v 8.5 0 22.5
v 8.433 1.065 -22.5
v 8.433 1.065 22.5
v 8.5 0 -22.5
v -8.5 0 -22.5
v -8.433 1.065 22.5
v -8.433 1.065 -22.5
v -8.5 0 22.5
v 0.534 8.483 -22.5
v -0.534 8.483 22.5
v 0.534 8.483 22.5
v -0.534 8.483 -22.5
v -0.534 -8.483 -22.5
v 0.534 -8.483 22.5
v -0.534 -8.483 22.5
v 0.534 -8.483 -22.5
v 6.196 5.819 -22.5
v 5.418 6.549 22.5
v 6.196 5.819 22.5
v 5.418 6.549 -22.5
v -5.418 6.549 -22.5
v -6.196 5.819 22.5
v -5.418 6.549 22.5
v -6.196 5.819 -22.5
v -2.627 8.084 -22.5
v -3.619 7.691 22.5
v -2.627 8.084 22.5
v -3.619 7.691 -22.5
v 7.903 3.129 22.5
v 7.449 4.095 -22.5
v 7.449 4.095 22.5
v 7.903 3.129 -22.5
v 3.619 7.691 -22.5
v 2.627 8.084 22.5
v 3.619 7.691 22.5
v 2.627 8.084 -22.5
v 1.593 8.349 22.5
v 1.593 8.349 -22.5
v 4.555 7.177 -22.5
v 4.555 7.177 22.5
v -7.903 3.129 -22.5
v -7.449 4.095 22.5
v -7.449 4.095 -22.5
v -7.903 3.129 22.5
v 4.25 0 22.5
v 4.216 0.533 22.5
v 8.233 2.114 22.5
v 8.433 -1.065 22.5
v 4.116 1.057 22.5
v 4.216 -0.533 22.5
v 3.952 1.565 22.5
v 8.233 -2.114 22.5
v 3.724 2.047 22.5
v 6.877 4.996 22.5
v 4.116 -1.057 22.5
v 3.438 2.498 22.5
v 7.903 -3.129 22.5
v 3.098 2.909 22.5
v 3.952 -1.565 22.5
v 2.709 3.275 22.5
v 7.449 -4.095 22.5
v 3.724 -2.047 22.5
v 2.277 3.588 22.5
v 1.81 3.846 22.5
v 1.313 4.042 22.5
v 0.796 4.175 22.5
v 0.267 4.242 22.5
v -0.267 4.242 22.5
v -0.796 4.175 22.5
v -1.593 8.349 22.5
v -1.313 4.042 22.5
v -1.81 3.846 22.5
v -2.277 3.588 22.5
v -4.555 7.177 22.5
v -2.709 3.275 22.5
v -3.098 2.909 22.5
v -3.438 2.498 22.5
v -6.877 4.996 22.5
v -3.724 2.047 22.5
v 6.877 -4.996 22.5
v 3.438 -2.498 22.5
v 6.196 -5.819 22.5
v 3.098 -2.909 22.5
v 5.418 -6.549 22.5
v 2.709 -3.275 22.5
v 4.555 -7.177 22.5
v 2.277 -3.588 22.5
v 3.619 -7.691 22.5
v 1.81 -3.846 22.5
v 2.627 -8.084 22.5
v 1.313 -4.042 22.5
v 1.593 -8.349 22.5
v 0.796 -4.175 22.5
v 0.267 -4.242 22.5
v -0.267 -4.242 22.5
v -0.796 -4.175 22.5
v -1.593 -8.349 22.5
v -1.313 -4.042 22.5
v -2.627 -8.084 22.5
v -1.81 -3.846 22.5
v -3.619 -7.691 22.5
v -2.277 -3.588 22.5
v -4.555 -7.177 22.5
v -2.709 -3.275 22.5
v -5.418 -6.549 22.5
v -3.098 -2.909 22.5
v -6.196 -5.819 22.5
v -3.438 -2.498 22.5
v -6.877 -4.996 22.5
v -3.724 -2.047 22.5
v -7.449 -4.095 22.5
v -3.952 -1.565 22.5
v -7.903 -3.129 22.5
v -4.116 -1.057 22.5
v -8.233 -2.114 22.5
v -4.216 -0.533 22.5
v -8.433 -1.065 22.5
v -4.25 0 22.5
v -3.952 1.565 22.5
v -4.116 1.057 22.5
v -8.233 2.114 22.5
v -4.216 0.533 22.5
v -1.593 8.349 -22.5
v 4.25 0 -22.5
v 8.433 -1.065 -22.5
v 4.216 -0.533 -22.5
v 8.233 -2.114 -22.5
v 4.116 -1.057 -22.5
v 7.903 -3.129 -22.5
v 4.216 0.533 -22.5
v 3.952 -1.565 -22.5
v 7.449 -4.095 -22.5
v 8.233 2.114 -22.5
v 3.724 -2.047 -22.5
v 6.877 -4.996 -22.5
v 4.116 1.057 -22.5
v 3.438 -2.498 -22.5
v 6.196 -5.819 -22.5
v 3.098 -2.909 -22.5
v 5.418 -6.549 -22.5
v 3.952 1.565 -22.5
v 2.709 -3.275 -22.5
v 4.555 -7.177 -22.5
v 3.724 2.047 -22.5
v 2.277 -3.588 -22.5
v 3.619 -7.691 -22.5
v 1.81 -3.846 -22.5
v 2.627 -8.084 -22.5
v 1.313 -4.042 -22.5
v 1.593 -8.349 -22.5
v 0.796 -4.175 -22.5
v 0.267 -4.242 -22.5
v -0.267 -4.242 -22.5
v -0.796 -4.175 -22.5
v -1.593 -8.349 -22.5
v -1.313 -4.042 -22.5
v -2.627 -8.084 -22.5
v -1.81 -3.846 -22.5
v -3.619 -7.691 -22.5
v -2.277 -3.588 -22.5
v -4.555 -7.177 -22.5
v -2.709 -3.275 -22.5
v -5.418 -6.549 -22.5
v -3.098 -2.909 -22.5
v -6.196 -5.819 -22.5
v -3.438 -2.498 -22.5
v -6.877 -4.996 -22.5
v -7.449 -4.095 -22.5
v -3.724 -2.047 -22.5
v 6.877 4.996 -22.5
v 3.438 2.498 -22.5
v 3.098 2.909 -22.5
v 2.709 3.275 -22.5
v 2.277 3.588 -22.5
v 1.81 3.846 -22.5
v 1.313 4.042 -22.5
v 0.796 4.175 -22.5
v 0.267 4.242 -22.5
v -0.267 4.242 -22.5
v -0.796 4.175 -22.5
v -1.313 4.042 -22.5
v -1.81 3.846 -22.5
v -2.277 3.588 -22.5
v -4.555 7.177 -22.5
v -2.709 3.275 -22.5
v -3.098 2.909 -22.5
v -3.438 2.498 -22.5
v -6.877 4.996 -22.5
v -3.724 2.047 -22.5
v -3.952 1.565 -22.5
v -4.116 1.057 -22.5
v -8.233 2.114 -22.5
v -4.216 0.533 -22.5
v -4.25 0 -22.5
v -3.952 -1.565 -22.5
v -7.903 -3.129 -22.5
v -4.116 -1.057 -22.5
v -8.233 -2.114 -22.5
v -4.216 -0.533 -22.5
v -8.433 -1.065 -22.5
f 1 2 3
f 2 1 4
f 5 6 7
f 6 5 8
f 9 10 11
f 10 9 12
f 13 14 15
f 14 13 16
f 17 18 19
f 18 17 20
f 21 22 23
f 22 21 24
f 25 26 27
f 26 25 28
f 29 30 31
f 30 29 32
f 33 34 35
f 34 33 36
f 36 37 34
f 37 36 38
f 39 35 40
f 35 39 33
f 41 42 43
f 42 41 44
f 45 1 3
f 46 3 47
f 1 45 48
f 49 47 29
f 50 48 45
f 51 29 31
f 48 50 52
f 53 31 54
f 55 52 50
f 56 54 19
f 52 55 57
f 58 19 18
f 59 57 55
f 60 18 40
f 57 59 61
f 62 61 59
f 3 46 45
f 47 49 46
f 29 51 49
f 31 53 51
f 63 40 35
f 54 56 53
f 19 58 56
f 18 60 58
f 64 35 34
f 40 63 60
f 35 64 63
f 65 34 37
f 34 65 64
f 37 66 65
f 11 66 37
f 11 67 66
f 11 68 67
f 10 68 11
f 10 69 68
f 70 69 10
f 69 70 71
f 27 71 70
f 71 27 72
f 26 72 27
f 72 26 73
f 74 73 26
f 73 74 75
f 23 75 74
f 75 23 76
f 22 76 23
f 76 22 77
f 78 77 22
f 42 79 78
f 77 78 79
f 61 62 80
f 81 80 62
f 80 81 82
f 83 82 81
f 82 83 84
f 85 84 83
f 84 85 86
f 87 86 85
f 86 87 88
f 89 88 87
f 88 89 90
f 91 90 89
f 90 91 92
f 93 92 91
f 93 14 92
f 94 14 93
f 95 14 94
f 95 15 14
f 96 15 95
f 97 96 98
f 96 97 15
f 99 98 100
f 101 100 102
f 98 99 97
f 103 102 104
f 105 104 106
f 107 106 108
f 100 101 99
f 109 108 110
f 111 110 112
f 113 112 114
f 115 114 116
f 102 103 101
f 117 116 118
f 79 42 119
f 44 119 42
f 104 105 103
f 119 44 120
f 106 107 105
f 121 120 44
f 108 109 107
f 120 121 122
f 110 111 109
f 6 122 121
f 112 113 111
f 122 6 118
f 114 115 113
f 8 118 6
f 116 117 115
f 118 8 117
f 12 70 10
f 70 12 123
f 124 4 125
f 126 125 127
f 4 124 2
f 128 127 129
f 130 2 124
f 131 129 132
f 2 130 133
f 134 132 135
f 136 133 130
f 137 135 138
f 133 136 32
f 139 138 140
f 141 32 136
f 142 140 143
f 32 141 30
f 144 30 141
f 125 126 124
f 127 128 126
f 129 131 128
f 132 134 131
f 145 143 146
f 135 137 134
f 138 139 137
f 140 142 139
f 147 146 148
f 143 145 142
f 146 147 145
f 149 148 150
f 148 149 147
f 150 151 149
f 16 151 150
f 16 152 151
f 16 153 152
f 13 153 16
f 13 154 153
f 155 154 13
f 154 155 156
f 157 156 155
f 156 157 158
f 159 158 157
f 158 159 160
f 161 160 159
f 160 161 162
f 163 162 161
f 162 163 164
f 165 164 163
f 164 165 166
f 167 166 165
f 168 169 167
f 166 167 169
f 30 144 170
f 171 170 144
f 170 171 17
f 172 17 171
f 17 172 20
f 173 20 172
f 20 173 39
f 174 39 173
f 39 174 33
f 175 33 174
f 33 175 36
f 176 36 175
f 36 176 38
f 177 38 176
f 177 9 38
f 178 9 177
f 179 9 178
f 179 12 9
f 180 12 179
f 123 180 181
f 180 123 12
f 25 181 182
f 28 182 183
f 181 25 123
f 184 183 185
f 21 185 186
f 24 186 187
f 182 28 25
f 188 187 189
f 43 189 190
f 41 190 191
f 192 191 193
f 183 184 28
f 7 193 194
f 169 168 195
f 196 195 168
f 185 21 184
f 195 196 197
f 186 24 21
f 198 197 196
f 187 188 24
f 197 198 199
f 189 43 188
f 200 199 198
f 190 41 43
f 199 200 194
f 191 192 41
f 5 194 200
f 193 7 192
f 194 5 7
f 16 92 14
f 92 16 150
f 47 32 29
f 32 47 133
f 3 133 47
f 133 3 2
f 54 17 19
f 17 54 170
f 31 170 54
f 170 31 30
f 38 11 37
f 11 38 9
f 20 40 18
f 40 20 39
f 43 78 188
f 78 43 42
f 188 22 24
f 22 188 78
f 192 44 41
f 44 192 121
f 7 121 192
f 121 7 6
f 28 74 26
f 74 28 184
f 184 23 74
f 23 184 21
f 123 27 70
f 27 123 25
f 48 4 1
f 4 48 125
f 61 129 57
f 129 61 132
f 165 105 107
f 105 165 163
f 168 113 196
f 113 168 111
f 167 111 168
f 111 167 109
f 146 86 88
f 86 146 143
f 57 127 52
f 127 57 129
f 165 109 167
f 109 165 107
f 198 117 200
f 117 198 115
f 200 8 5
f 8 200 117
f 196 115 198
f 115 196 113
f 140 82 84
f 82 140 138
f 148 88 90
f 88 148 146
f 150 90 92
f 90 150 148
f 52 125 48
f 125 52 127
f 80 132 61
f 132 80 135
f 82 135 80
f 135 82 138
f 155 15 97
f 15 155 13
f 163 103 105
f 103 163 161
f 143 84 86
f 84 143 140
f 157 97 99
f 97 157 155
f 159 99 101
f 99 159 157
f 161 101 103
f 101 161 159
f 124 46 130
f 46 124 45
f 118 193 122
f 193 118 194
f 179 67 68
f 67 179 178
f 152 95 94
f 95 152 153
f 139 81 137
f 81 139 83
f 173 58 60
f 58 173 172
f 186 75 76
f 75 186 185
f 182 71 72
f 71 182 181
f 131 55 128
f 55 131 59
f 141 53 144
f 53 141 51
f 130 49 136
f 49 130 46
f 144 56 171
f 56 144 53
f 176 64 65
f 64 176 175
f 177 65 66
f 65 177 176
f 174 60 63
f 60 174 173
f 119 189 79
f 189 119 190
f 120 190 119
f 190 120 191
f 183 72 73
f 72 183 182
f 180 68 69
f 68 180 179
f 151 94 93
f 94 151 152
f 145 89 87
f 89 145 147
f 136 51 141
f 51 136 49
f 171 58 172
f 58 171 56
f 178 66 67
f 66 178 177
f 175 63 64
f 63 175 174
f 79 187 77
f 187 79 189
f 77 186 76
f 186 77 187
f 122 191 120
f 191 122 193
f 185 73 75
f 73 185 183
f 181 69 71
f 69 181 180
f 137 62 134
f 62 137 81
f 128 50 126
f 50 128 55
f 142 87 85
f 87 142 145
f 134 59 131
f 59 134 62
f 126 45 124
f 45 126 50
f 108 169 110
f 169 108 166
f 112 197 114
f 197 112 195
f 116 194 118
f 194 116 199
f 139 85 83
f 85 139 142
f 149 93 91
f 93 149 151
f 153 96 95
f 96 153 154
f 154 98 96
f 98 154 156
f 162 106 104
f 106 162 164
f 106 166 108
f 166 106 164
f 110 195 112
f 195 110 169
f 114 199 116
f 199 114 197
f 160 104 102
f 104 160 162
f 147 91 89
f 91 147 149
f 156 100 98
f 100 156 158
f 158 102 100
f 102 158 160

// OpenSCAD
$fn = 50;


difference() {
	union() {
		translate(v = [0, 0, -22.5000000000]) {
			cylinder(h = 45, r = 8.5000000000);
		}
	}
	union() {
		translate(v = [0, 0, -100.0000000000]) {
			cylinder(h = 200, r = 4.2500000000);
		}
	}
}
